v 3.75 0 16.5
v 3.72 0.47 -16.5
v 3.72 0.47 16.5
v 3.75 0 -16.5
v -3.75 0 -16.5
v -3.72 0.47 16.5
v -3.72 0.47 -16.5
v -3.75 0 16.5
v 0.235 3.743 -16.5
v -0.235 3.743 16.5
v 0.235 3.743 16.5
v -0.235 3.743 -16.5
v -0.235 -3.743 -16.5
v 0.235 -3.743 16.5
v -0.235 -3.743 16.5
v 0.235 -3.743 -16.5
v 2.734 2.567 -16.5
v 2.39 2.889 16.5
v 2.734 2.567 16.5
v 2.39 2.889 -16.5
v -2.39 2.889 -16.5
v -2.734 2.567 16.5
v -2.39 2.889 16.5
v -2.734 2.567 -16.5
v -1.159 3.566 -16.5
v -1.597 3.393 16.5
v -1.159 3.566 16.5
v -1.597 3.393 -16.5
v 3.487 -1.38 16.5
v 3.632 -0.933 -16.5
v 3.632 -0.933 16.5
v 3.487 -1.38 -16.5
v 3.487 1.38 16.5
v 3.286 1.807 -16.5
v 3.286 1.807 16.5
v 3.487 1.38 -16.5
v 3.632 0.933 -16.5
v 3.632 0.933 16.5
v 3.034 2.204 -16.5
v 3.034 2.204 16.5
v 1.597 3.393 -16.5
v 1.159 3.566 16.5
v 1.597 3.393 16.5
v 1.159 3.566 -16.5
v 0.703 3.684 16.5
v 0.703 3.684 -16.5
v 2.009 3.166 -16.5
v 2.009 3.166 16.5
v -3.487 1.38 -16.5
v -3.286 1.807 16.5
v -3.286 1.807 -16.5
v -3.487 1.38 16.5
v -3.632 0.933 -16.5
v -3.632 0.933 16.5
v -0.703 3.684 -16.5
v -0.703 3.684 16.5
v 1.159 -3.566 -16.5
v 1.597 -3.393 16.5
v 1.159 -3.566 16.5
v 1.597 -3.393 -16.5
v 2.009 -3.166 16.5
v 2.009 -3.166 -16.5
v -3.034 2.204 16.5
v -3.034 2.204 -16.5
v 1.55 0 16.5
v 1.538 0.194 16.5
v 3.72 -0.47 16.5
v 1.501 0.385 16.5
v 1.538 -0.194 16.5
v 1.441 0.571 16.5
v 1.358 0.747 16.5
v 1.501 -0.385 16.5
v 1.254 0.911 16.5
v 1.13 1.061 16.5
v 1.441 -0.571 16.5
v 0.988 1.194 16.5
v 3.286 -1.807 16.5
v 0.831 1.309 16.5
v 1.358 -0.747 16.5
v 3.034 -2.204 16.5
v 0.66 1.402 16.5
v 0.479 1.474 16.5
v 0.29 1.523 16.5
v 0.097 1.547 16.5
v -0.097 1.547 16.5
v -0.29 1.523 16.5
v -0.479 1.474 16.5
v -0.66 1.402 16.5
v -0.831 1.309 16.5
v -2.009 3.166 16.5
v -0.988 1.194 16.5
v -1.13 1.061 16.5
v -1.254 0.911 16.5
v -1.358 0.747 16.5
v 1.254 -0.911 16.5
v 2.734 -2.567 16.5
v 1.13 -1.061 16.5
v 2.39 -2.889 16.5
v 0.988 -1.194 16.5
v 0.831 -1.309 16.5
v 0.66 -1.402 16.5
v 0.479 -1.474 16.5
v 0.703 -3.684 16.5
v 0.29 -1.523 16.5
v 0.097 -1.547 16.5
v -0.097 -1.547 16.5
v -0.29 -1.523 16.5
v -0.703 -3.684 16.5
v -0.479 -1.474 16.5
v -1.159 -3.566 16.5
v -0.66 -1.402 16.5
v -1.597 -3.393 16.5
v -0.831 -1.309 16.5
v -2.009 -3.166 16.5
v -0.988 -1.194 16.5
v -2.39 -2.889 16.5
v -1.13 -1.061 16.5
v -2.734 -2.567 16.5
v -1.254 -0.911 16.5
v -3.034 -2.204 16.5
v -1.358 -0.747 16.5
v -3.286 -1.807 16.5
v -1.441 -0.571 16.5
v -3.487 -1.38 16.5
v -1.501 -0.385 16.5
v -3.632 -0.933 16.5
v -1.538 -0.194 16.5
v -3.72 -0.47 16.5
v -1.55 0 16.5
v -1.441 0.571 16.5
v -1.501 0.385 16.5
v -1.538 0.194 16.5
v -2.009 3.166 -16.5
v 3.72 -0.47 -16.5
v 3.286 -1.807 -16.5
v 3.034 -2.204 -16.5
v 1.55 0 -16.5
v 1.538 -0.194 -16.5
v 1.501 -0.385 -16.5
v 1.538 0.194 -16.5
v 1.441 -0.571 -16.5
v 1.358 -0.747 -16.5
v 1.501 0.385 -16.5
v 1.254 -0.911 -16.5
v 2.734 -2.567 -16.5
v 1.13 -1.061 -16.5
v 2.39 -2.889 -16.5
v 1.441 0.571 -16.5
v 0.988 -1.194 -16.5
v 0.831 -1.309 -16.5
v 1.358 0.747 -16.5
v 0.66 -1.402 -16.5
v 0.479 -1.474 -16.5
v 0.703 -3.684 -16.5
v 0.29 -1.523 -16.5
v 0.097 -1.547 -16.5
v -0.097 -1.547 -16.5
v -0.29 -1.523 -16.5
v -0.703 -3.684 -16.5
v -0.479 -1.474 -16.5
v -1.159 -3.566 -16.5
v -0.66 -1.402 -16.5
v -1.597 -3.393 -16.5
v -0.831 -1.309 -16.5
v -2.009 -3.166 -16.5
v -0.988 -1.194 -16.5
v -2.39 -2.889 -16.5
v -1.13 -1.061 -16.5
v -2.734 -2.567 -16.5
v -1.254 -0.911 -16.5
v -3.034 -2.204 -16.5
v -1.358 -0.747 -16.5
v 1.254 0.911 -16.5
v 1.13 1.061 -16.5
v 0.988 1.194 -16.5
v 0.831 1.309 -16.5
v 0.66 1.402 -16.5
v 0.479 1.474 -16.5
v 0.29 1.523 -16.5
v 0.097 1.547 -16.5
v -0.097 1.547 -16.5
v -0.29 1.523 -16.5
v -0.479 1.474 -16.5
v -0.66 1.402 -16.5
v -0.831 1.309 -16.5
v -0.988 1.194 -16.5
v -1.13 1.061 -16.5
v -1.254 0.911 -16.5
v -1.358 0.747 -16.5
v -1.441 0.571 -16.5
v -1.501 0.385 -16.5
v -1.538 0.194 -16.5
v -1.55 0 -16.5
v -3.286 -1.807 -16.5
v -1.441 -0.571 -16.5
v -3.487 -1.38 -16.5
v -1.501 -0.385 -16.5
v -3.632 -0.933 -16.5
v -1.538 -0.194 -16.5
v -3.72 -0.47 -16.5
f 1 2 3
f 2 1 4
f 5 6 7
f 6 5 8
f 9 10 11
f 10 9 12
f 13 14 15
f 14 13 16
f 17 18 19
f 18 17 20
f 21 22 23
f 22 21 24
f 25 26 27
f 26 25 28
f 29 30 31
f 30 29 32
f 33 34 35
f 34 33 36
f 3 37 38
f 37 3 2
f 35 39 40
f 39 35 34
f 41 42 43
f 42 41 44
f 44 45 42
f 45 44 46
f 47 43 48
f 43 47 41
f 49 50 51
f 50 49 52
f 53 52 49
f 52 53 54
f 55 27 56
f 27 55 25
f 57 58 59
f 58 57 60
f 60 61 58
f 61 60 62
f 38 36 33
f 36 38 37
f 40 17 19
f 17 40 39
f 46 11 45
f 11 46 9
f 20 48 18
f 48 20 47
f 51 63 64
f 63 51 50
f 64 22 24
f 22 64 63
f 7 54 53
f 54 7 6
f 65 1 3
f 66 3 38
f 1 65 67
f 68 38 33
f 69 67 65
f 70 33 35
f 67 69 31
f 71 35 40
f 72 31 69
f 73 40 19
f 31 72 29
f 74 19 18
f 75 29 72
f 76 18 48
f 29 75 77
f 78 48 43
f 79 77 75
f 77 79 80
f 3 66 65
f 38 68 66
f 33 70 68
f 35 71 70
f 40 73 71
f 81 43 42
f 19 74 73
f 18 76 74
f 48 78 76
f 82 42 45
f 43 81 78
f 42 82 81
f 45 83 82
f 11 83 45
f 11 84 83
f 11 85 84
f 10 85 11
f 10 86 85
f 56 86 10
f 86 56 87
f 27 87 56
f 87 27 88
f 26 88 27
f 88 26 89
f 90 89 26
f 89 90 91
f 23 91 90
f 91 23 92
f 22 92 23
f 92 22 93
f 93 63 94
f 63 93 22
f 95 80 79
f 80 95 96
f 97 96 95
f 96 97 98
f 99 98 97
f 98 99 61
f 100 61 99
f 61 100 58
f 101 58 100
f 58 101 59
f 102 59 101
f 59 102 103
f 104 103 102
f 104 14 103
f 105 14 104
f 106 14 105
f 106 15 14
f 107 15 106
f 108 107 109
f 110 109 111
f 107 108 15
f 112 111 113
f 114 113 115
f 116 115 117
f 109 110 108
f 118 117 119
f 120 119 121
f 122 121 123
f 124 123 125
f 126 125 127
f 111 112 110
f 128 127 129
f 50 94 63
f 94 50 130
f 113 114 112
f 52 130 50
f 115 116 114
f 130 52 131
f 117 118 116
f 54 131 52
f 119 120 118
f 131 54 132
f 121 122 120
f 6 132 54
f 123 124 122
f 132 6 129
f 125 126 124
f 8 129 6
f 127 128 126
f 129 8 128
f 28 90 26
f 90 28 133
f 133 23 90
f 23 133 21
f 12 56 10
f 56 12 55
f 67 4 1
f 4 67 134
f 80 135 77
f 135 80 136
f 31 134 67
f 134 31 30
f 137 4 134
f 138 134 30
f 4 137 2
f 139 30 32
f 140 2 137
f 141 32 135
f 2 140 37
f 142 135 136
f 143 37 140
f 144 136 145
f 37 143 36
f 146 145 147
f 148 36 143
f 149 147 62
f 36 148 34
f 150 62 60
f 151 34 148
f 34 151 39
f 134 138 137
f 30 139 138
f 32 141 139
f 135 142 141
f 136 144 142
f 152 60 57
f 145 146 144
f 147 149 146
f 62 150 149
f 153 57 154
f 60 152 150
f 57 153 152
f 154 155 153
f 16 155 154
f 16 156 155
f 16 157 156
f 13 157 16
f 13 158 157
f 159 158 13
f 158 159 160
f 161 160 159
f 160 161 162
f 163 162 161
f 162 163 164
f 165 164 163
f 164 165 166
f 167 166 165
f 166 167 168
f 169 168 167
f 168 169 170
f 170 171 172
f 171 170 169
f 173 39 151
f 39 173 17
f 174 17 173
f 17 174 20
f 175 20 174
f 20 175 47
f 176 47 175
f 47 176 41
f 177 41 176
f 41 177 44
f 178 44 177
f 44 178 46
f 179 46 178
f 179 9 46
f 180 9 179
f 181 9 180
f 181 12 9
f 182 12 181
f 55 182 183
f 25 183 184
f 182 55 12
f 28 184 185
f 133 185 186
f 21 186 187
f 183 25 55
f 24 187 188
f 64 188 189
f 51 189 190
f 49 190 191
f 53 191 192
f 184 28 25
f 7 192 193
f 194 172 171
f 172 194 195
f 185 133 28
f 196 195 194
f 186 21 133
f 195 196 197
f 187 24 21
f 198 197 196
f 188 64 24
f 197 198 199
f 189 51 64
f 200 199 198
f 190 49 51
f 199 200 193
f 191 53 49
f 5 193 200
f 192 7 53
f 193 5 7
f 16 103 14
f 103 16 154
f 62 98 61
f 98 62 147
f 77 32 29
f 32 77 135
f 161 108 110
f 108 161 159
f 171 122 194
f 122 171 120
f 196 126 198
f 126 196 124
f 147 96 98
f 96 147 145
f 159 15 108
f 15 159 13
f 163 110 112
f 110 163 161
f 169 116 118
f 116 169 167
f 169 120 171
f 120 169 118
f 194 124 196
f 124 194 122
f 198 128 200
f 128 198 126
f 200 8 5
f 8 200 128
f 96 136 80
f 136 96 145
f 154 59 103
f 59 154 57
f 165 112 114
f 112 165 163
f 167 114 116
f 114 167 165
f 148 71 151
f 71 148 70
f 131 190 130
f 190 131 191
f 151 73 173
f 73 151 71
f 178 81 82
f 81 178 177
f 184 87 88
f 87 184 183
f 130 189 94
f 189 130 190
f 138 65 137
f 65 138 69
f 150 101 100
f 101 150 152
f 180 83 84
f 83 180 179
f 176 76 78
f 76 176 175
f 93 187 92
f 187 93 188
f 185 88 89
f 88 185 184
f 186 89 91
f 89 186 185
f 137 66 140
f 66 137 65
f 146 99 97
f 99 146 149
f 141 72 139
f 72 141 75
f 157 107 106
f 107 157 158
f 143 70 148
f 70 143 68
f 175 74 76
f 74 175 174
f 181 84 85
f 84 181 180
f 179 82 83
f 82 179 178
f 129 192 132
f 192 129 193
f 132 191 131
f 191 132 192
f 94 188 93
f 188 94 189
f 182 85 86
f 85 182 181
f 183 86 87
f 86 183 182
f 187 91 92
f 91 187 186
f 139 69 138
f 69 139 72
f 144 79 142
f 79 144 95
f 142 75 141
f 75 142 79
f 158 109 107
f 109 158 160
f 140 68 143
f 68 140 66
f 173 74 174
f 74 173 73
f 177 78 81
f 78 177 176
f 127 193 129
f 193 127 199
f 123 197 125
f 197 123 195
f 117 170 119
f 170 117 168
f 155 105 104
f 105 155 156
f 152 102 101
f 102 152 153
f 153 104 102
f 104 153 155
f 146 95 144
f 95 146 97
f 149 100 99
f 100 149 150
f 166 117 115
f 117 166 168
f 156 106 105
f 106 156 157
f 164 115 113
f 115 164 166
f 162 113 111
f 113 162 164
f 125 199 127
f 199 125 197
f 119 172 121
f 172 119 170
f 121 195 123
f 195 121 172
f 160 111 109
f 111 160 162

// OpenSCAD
$fn = 50;


difference() {
	union() {
		translate(v = [0, 0, -16.5000000000]) {
			cylinder(h = 33, r = 3.7500000000);
		}
	}
	union() {
		translate(v = [0, 0, -100.0000000000]) {
			cylinder(h = 200, r = 1.5500000000);
		}
	}
}
